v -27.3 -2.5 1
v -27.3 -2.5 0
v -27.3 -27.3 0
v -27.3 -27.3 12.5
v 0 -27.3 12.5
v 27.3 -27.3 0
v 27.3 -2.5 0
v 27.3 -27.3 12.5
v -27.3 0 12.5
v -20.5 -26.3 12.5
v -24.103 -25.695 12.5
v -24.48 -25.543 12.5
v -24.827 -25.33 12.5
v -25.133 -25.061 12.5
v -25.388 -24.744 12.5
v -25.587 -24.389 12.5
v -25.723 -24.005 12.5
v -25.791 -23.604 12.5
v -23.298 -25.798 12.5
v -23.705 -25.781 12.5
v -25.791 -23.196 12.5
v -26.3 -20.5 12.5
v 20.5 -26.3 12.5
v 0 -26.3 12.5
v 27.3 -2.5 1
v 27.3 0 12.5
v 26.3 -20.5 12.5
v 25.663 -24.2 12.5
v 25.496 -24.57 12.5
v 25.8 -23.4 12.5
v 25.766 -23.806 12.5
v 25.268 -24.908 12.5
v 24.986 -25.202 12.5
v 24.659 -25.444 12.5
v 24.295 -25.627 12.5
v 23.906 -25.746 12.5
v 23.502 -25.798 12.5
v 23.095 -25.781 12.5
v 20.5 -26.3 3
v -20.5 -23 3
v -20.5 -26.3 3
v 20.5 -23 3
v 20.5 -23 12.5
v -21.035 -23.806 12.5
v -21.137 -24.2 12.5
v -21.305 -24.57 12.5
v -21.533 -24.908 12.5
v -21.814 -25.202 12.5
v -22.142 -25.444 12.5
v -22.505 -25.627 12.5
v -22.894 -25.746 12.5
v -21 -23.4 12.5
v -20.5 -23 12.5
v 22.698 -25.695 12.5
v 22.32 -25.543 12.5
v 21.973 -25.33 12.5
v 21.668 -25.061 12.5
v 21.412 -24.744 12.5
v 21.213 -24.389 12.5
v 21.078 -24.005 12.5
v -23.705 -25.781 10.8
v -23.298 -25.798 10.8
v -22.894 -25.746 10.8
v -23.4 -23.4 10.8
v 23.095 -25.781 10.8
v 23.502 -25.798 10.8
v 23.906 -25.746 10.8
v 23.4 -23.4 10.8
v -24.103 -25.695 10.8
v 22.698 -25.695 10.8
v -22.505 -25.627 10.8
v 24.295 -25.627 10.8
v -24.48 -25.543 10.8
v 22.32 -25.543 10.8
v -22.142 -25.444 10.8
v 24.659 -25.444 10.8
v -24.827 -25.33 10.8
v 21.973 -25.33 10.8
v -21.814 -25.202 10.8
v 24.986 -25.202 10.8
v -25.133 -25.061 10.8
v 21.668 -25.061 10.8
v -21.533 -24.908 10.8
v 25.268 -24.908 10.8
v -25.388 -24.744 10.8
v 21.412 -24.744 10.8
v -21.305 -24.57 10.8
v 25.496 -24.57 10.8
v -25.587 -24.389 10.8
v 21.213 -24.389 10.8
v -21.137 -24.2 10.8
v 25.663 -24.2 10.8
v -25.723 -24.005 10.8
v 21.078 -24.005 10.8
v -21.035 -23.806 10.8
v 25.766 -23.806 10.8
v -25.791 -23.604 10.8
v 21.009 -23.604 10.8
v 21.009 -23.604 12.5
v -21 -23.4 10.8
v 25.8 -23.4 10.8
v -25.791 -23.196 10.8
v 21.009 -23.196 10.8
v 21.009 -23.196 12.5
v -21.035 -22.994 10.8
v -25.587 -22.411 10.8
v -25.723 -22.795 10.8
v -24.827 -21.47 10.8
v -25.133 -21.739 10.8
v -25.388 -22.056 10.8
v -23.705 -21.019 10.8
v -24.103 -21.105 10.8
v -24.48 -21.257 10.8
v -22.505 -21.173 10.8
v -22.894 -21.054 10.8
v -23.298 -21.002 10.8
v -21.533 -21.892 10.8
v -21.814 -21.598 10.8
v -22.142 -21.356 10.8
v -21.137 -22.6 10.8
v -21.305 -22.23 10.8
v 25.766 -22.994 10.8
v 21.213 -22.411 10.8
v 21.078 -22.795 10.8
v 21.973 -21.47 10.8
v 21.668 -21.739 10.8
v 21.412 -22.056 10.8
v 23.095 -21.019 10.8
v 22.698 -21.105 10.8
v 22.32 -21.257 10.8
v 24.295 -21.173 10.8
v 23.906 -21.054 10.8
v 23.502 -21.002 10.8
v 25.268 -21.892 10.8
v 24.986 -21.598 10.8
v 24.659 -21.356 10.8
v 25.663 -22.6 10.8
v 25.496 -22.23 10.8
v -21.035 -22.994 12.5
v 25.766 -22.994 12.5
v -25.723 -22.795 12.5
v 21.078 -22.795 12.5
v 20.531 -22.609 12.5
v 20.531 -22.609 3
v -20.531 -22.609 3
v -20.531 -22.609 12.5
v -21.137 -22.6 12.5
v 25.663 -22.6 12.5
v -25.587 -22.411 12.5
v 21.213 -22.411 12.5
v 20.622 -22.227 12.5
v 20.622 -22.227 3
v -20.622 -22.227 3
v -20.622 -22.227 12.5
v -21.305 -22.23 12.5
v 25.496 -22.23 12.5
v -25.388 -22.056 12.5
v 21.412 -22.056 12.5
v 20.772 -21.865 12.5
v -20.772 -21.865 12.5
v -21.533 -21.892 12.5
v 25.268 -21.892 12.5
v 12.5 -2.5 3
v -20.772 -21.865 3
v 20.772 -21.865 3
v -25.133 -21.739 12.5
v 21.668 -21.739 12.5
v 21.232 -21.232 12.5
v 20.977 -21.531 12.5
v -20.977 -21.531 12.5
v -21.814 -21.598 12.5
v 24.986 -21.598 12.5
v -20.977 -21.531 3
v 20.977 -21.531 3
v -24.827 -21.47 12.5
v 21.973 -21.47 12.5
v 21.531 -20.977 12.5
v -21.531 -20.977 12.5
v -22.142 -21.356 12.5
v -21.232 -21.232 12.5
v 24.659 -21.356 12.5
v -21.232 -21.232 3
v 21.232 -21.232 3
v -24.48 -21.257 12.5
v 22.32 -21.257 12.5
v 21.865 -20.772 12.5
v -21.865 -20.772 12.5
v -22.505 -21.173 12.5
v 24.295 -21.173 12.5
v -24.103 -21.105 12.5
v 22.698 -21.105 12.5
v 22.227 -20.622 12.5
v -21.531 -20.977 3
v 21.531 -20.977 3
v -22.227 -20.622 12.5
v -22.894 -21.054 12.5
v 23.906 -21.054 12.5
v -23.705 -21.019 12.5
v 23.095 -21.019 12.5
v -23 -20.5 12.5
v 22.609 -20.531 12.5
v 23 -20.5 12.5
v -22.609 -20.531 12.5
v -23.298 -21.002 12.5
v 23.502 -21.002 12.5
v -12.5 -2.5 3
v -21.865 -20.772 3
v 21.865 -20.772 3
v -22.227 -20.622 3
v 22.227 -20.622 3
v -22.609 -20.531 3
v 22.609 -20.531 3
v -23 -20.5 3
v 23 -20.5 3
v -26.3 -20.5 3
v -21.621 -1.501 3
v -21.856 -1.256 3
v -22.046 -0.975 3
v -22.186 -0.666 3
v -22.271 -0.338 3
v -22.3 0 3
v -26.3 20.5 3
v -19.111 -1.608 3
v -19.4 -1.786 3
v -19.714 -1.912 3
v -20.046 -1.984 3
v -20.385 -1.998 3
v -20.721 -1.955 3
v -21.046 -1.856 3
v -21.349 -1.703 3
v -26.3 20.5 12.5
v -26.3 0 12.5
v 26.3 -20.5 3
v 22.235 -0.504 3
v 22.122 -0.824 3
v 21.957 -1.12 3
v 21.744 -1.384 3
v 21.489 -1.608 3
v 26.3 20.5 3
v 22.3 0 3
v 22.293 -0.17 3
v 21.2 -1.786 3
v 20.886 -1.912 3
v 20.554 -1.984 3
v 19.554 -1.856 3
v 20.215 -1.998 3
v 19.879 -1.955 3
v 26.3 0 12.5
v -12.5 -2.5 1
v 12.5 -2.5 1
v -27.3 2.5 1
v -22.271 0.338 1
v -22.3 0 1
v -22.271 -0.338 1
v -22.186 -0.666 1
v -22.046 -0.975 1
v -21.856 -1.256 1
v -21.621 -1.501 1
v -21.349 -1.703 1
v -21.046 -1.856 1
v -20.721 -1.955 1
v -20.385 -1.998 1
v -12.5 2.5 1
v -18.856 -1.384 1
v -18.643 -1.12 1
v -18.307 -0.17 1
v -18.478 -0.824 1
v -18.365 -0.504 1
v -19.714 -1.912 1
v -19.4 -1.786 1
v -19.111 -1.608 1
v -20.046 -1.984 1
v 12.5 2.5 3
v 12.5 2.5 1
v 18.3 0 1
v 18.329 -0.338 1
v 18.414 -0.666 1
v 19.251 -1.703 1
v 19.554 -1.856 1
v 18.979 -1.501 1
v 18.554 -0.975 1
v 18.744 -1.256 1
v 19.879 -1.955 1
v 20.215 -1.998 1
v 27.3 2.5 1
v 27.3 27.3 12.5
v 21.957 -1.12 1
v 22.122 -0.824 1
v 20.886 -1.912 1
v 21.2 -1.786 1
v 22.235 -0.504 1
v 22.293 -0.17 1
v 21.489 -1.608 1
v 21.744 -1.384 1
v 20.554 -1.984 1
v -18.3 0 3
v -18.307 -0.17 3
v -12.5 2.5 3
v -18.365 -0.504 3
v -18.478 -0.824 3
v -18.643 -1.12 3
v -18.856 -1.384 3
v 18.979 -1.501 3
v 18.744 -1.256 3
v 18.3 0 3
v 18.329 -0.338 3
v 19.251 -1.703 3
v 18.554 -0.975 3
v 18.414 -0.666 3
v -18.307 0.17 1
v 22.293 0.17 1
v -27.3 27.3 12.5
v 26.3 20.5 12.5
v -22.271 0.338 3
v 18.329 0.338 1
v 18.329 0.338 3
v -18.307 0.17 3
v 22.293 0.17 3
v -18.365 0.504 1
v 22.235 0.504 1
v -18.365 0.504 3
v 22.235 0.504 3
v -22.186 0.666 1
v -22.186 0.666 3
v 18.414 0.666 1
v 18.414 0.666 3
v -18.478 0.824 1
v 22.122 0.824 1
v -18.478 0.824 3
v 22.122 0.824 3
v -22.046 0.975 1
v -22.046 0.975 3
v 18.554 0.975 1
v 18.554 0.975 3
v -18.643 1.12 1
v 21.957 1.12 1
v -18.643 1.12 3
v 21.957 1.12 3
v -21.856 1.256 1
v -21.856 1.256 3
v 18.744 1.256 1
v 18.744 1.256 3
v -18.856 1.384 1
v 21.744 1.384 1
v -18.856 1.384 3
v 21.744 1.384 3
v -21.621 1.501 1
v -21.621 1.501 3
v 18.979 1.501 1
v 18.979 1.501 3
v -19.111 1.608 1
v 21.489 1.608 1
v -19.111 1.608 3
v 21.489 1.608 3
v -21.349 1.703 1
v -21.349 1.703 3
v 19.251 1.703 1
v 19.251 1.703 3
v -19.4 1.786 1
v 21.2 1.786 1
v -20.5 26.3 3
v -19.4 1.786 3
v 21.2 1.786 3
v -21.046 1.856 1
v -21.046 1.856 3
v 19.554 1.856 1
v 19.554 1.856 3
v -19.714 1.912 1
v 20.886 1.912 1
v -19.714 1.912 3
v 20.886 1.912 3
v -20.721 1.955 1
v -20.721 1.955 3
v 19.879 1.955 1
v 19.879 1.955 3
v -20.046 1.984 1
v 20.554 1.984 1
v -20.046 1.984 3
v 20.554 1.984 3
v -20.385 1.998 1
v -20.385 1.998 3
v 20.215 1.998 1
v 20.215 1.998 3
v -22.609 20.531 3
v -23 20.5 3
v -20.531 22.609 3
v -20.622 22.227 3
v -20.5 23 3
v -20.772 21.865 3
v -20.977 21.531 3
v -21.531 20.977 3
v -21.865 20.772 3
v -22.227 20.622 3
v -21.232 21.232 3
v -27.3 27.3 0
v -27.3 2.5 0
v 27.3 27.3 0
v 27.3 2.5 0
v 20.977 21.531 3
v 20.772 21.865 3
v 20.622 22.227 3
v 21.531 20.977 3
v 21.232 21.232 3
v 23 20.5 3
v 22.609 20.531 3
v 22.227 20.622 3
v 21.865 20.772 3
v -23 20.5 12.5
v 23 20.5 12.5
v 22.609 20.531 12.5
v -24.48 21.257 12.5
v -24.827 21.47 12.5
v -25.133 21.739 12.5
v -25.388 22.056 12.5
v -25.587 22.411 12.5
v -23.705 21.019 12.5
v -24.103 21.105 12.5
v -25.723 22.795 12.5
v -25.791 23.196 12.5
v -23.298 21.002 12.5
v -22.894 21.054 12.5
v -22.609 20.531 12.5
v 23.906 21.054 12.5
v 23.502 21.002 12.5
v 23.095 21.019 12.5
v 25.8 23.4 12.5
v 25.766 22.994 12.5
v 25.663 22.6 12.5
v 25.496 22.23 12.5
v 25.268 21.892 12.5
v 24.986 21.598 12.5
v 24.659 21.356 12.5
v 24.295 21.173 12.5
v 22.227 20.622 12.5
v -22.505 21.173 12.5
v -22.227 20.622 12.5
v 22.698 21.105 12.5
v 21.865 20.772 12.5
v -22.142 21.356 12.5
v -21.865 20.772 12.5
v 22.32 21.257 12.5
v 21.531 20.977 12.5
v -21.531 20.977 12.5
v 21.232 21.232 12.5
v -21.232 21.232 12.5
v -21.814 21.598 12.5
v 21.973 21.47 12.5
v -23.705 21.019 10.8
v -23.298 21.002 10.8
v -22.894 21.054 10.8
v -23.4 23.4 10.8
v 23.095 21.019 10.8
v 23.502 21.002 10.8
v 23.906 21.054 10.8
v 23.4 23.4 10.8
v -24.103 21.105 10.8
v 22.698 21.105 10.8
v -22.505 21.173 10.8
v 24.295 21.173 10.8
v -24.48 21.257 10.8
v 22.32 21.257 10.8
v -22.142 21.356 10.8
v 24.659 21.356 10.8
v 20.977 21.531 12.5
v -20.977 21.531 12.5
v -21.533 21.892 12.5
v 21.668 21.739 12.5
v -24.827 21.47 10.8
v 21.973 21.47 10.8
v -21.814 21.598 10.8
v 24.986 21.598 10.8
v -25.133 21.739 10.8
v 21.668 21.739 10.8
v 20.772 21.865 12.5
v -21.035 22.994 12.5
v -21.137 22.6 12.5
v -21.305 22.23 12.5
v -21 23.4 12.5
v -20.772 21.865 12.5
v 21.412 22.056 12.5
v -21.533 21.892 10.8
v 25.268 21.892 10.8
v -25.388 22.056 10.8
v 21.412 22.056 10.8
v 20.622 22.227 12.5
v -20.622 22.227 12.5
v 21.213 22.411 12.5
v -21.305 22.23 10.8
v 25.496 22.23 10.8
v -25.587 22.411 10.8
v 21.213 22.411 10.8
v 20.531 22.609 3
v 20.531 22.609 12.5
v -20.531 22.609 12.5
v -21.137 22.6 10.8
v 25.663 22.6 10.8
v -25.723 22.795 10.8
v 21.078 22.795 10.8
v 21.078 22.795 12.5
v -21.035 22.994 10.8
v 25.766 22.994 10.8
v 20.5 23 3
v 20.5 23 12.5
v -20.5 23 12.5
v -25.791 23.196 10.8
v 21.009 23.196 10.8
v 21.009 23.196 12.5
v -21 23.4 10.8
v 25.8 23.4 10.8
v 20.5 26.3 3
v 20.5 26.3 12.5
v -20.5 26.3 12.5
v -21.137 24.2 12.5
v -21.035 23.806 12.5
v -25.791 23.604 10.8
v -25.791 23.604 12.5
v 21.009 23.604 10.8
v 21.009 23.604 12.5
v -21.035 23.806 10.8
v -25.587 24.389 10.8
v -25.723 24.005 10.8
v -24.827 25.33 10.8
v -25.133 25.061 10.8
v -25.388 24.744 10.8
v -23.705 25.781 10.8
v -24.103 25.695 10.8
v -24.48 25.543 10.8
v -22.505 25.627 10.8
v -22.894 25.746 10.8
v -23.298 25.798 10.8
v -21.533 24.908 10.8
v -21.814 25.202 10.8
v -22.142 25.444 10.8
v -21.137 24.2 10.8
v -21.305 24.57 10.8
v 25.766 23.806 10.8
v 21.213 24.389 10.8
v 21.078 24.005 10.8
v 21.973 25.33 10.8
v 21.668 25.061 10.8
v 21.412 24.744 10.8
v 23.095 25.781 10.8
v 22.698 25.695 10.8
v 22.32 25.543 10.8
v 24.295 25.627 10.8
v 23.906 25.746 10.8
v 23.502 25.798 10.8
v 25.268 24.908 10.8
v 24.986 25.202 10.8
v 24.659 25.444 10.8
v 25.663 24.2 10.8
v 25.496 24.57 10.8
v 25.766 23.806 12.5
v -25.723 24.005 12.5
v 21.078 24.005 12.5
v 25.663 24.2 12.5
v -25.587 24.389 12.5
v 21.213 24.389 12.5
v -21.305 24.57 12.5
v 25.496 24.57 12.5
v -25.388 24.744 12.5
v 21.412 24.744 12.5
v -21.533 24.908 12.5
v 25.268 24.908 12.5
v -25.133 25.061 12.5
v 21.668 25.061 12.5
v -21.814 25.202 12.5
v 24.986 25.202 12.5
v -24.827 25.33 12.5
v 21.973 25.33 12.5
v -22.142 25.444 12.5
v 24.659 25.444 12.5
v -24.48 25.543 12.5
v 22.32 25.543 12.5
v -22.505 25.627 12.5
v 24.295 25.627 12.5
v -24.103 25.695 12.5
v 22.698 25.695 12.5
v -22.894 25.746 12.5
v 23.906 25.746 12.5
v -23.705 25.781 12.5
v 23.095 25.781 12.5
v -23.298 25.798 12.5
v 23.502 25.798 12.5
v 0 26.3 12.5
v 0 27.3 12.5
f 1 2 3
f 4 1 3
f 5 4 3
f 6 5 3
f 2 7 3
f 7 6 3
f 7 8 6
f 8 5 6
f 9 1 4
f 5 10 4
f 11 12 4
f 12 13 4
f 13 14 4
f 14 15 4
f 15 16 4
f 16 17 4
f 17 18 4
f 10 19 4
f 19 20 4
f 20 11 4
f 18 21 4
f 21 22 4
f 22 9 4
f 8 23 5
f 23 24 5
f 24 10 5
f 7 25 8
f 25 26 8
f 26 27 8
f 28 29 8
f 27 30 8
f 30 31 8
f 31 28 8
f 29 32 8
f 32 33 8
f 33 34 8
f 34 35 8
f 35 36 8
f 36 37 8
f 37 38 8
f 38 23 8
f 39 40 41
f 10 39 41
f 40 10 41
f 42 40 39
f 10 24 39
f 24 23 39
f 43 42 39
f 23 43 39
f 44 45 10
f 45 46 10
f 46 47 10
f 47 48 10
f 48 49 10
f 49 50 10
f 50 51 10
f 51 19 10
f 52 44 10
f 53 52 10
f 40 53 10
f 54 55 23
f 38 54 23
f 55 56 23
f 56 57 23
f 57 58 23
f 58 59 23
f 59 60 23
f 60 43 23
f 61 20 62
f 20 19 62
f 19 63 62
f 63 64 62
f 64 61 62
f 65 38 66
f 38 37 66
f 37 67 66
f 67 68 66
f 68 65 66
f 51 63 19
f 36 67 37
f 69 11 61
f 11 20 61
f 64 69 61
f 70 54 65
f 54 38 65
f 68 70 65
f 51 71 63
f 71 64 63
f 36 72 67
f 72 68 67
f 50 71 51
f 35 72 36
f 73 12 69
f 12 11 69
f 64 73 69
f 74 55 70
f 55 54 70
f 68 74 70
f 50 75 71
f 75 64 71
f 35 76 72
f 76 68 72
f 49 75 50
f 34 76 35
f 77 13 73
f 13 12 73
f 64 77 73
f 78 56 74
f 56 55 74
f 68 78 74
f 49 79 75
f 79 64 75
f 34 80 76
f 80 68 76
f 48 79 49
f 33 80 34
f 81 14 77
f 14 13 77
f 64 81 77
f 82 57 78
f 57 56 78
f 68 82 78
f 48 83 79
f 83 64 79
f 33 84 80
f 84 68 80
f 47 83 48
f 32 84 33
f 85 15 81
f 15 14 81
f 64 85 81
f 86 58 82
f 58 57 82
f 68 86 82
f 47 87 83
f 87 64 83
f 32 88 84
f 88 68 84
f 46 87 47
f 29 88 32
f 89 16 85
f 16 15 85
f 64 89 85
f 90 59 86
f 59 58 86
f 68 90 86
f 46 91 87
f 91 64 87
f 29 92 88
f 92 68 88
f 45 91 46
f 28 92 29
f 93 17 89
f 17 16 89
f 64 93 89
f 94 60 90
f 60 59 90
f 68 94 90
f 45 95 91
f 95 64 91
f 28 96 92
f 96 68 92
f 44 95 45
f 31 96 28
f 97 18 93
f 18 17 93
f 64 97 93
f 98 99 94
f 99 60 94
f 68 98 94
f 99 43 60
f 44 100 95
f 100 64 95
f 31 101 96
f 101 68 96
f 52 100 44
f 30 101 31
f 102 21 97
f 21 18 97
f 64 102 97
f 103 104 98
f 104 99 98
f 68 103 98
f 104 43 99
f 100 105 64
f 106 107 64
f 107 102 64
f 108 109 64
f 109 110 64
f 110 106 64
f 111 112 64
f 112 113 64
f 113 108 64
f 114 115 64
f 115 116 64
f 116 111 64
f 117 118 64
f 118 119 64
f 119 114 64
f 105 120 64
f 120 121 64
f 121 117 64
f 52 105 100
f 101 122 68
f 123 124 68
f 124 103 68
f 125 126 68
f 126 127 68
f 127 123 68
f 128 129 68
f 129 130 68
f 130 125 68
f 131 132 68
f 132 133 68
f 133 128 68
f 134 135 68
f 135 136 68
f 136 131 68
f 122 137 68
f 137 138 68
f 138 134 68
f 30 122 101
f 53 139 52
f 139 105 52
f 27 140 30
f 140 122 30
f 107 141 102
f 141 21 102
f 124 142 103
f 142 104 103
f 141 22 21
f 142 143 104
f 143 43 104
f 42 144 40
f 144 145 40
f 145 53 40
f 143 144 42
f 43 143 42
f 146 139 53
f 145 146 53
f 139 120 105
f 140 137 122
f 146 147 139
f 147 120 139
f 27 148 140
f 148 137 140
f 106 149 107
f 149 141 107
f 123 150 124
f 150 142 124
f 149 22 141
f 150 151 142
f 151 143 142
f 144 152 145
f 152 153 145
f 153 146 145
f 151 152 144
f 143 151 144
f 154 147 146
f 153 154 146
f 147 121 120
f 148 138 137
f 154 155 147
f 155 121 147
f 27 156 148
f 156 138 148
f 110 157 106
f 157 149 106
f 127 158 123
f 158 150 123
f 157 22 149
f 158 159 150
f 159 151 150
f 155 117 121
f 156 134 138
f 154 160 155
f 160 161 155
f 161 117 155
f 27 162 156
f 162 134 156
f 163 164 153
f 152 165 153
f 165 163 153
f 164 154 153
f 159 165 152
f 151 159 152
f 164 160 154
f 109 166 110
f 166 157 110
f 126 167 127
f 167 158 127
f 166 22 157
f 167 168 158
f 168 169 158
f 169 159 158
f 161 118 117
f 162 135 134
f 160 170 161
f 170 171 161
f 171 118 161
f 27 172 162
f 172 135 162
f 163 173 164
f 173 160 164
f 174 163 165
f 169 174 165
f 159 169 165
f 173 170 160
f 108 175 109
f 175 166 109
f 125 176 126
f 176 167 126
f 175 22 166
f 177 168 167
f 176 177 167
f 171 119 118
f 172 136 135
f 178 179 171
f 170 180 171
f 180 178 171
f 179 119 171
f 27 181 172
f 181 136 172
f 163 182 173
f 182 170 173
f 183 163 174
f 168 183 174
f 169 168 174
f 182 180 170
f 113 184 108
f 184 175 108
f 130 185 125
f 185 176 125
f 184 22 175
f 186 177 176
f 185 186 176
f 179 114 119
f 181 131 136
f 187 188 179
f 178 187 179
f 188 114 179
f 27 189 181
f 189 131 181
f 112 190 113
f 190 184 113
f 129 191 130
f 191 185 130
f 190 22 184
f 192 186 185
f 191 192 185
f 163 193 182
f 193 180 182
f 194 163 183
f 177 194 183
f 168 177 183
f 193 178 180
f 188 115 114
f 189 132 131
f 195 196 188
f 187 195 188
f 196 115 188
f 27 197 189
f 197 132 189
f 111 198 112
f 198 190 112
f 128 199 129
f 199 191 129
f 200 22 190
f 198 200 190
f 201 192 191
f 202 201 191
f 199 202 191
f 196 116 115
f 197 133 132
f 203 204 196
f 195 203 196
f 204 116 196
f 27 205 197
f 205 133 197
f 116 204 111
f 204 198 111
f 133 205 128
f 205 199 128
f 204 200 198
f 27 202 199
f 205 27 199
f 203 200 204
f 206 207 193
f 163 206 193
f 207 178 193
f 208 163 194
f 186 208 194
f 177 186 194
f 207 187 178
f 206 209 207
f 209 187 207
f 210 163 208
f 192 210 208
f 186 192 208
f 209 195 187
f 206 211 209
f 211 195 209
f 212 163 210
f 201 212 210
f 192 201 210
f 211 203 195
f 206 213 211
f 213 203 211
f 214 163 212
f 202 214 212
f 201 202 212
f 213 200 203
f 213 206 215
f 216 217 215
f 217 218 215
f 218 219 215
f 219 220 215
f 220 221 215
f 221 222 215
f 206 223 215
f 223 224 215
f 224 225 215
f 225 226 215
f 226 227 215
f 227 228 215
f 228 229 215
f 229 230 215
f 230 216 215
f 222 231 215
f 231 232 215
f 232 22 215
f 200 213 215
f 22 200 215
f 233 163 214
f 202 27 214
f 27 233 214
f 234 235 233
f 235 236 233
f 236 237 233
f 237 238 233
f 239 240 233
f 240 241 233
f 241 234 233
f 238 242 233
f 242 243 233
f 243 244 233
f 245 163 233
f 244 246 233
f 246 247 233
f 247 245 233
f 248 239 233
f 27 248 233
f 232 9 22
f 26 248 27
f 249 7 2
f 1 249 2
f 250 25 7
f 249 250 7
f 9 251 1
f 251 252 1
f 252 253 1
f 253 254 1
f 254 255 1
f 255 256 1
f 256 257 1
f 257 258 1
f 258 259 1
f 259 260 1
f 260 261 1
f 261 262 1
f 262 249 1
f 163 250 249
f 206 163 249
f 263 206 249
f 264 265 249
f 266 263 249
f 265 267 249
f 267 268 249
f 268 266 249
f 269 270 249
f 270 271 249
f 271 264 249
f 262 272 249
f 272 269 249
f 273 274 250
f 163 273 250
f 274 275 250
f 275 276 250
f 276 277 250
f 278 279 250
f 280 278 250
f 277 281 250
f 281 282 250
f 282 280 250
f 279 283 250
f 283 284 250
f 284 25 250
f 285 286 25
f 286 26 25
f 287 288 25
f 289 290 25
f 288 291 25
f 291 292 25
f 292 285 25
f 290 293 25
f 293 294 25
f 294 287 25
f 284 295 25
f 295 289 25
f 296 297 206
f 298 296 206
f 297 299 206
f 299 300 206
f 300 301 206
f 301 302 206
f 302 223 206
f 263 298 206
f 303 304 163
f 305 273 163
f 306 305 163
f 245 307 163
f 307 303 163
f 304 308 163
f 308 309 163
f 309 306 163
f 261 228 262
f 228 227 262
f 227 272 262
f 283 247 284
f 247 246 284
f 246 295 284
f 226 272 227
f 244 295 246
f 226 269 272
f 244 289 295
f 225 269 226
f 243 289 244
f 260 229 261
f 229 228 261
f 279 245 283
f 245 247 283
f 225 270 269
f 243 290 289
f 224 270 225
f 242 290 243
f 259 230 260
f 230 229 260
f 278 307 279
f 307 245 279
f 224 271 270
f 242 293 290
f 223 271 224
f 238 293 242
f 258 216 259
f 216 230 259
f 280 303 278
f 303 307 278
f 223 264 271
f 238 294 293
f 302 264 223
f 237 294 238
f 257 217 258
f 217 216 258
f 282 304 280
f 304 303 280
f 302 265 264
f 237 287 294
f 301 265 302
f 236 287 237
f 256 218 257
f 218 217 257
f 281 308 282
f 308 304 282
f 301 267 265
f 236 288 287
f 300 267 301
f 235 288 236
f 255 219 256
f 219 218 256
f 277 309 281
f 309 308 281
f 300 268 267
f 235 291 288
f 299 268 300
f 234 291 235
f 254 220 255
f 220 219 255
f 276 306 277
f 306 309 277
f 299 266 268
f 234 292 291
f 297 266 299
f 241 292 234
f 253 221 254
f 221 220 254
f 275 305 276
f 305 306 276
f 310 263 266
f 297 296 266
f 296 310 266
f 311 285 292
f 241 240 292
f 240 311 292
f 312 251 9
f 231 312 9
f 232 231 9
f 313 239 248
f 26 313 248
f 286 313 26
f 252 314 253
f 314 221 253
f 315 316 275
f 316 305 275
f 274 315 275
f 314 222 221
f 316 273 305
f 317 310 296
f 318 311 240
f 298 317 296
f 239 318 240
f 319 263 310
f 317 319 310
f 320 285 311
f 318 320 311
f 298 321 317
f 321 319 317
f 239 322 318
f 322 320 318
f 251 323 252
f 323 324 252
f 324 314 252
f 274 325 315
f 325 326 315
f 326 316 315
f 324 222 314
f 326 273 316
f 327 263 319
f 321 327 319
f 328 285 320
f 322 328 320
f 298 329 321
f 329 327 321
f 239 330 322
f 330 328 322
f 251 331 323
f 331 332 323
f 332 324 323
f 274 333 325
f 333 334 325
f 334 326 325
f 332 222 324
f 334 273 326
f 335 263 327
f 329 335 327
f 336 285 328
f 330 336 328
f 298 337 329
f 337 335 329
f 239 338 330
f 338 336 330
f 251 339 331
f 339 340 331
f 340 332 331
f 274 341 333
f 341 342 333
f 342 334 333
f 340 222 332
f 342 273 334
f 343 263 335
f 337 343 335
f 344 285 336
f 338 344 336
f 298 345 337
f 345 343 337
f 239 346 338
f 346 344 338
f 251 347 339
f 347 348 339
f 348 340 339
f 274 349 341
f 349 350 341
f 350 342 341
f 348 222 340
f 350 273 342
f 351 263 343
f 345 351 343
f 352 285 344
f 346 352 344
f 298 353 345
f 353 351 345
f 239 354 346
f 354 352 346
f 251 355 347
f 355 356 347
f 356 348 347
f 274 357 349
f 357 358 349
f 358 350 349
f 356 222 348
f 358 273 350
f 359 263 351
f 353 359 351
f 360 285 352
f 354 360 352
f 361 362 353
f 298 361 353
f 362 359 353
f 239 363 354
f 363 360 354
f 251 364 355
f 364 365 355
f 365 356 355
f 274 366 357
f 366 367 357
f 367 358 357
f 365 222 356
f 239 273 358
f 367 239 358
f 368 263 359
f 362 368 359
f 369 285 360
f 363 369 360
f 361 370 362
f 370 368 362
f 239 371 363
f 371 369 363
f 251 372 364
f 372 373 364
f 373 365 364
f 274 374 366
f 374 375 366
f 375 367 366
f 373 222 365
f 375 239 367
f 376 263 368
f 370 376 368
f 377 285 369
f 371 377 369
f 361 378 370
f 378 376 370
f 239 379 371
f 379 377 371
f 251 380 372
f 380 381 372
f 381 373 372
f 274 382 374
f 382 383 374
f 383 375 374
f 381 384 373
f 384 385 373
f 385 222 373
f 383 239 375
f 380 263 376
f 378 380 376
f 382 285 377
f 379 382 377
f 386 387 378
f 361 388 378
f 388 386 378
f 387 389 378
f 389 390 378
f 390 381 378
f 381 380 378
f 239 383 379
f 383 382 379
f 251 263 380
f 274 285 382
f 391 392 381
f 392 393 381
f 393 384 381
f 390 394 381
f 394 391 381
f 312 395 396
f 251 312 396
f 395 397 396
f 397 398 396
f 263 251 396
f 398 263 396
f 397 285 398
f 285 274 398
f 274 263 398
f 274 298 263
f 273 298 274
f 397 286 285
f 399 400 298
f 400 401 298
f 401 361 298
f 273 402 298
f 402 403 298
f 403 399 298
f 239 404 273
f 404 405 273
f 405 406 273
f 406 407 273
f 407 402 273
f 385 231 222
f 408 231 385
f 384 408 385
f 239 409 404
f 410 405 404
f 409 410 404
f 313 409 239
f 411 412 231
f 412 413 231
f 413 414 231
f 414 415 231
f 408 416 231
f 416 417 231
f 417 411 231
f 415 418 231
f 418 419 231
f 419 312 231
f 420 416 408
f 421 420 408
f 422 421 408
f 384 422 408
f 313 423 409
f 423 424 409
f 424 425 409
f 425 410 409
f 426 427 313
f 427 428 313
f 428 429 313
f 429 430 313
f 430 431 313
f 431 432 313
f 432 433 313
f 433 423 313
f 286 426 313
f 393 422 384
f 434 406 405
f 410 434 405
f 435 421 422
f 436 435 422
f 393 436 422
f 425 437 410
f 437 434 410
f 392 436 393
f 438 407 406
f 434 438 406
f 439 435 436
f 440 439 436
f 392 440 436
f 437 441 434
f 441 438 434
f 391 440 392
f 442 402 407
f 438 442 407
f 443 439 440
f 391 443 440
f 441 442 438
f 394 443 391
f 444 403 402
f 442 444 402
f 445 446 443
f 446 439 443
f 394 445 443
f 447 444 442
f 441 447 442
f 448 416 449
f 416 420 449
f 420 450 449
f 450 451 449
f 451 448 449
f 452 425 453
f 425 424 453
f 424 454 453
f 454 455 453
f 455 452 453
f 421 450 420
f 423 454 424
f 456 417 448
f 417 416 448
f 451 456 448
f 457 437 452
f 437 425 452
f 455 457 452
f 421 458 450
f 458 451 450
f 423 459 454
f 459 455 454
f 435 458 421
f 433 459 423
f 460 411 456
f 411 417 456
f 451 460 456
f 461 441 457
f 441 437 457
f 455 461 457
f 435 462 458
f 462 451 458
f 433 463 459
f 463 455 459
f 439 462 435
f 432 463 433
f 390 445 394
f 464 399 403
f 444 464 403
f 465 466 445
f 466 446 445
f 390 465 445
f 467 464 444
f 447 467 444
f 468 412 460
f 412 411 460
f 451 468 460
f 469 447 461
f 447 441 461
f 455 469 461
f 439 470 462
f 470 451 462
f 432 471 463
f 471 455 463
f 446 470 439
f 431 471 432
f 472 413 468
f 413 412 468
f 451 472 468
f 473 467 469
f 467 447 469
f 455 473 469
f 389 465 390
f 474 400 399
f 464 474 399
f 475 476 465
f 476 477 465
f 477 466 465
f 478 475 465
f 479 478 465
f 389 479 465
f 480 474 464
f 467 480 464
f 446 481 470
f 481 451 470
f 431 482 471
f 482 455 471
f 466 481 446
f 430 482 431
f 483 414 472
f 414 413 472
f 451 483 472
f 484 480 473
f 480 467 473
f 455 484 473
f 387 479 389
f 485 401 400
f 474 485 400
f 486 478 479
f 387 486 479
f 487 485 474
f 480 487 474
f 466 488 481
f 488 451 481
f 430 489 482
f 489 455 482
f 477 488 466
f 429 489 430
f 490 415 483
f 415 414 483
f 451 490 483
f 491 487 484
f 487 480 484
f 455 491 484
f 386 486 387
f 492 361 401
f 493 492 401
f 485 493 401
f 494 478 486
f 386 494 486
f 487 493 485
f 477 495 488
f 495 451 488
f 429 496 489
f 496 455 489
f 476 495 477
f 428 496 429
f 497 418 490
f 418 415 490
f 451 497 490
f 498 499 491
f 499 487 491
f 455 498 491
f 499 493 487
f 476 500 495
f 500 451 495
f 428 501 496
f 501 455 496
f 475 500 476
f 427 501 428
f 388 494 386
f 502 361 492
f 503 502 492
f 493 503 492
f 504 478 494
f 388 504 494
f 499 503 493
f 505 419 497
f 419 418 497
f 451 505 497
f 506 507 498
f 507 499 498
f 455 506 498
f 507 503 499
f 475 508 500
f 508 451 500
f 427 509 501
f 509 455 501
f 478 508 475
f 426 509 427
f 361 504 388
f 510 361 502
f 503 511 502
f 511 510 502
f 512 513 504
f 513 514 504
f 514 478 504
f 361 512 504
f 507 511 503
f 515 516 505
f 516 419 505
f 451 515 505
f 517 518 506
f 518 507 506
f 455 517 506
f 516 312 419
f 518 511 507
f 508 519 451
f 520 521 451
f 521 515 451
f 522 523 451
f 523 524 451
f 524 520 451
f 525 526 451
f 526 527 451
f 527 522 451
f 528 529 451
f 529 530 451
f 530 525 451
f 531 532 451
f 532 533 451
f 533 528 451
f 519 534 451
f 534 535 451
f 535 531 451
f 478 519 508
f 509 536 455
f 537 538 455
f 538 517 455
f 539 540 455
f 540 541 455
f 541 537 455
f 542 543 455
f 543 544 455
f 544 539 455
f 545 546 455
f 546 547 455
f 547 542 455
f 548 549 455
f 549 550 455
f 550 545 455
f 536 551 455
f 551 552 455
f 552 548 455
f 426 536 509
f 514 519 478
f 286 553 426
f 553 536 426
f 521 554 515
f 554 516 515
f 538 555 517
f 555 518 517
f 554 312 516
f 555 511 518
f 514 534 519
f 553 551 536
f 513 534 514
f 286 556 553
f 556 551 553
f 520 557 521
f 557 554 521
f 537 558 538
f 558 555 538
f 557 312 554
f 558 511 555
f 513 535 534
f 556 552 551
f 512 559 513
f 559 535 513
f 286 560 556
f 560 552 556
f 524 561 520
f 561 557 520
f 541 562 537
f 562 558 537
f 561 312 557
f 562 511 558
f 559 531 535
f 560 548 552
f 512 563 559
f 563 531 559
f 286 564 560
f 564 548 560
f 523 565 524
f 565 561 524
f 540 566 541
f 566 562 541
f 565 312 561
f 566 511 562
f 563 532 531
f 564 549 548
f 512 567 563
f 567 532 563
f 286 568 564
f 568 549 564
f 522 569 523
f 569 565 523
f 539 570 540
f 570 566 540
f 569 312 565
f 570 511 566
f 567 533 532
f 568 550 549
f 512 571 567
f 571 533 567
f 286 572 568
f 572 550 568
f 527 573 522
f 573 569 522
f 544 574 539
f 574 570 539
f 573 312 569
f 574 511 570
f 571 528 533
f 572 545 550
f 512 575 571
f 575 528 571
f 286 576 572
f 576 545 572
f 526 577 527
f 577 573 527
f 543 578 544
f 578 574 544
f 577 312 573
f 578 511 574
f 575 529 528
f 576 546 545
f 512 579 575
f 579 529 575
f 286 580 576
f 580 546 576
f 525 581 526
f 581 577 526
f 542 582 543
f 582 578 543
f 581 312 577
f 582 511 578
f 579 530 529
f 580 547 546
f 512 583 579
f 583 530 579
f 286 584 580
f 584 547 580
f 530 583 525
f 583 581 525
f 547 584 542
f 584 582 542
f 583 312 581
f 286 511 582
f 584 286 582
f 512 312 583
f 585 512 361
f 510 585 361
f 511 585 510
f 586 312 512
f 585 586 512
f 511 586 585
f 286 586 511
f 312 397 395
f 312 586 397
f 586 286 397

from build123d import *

# Parameters (mm, degrees)
SKICA1_W                 = 54.6
SKICA1_H                 = 54.6
P_IDAT_VYSUNUT_M2_DEPTH  = 3
SKICA4_W                 = 25
SKICA4_H                 = 5
ODEBRAT_VYSUNUT_M1_DEPTH = 2
SKICA5_W                 = 54.6
SKICA5_H                 = 5
ODEBRAT_VYSUNUT_M3_DEPTH = 1
SKICA14_W                = 52.6
SKICA14_H                = 1
P_IDAT_VYSUNUT_M9_DEPTH  = 9.5
SKICA17_R                = 2
ODEBRAT_VYSUNUT_M8_DEPTH = 4
SKICA19_W                = 6.8
SKICA19_H                = 6.8
P_IDAT_VYSUNUT_M10_DEPTH = 12.5
SKICA20_R                = 2.4
ODEBRAT_VYSUNUT_M9_DEPTH = 1.7
ZAOBLIT1_R               = 2.5


with BuildPart() as part:
    # Skica1 → Přidat vysunutím2 (new body)
    with BuildSketch(Plane.XY):
        Rectangle(SKICA1_W, SKICA1_H)
    extrude(amount=P_IDAT_VYSUNUT_M2_DEPTH)

    # Skica4 → Odebrat vysunutím1 (cut)
    with BuildSketch(Plane.XY.offset(3)):
        Rectangle(SKICA4_W, SKICA4_H)
    extrude(amount=-ODEBRAT_VYSUNUT_M1_DEPTH, mode=Mode.SUBTRACT)

    # Skica5 → Odebrat vysunutím3 (cut)
    with BuildSketch(Plane(origin=(0, 0, 0), x_dir=(-1, 0, 0), z_dir=(0, 0, -1))):
        Rectangle(SKICA5_W, SKICA5_H)
    extrude(amount=-ODEBRAT_VYSUNUT_M3_DEPTH, mode=Mode.SUBTRACT)

    # Skica14 → Přidat vysunutím9 (add)
    with BuildSketch(Plane.XY.offset(3)):
        Polygon((27.3, 27.3), (-27.3, 27.3), (-27.3, -27.3), (-26.3, -27.3), (-26.3, -26.3), (-26.3, 26.3), (26.3, 26.3), (26.3, -26.3), (26.3, -27.3), (27.3, -27.3), align=None)
        with Locations((0, -26.8)):
            Rectangle(SKICA14_W, SKICA14_H)
    extrude(amount=P_IDAT_VYSUNUT_M9_DEPTH)

    # Skica17 → Odebrat vysunutím8 (cut)
    with BuildSketch(Plane(origin=(0, 0, 1), x_dir=(-1, 0, 0), z_dir=(0, 0, -1))):
        with Locations((-20.3, 0)):
            Circle(SKICA17_R)
        with Locations((20.3, 0)):
            Circle(SKICA17_R)
    extrude(amount=-ODEBRAT_VYSUNUT_M8_DEPTH, mode=Mode.SUBTRACT)

    # Skica19 → Přidat vysunutím10 (add)
    with BuildSketch(Plane(origin=(0, 0, 0), x_dir=(-1, 0, 0), z_dir=(0, 0, -1))):
        with Locations((-23.9, 23.9)):
            Rectangle(SKICA19_W, SKICA19_H)
        with Locations((23.9, 23.9)):
            Rectangle(SKICA19_W, SKICA19_H)
        with Locations((-23.9, -23.9)):
            Rectangle(SKICA19_W, SKICA19_H)
        with Locations((23.9, -23.9)):
            Rectangle(SKICA19_W, SKICA19_H)
    extrude(amount=-P_IDAT_VYSUNUT_M10_DEPTH)

    # Skica20 → Odebrat vysunutím9 (cut)
    with BuildSketch(Plane.XY.offset(12.5)):
        with Locations((-23.4, -23.4)):
            Circle(SKICA20_R)
        with Locations((-23.4, 23.4)):
            Circle(SKICA20_R)
        with Locations((23.400280565, 23.4)):
            Circle(SKICA20_R)
        with Locations((23.400280565, -23.4)):
            Circle(SKICA20_R)
    extrude(amount=-ODEBRAT_VYSUNUT_M9_DEPTH, mode=Mode.SUBTRACT)

    # Zaoblit1
    zaoblit1_edges = [part.edges().sort_by_distance(p)[0] for p in [
        (-20.5, 20.5, 7.75),
        (20.5, -20.5, 7.75),
        (-20.5, -20.5, 7.75),
        (20.5, 20.5, 7.75),
    ]]
    fillet(zaoblit1_edges, radius=ZAOBLIT1_R)


solid = part.part
